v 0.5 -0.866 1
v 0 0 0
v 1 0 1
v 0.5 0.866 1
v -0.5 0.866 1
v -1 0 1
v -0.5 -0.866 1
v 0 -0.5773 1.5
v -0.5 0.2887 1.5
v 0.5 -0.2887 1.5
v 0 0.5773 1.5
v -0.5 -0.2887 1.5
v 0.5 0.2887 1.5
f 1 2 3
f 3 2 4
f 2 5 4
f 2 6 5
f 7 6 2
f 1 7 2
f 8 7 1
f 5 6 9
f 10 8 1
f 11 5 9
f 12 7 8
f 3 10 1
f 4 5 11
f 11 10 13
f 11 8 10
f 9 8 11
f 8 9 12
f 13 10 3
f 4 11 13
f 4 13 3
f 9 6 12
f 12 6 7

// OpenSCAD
/* [Diamond] */

edges = 6;
radious = 1;

// Draw a regular polygon
module regular_polygon(order=4, r=1){
  angles=[ for (i = [0:order-1]) i*(360/order) ];
  coords=[ for (th=angles) [r*cos(th), r*sin(th)] ];
  polygon(coords);
}

// Give the coordinates of a regular polygon
function regular_polygon_coords(order=4, r=1) =
  [ for (th=[ for (i = [0:order-1]) i*(360/order) ]) [r*cos(th), r*sin(th)] ];

/*
  Give the length of the edge of a regular polygon
  Requires at least two parameters
  TO DO
*/
function polygon_edge(edges=undef, radious=undef, apothem=undef, /*edge=undef,*/ perimeter=undef, area=undef) = [
  if (edges!=undef)
    if (radious!=undef) undef
    else if (apothem!=undef) 2*apothem*TAN(PI/edges)
    else if (perimeter!=undef) undef
    else if (area!=undef) undef
  else if(radious!=undef)
    if (apothem!=undef) undef
    else if (perimeter!=undef) undef
    else if (area!=undef) undef
  else if(apothem!=undef)
    if (perimeter!=undef) undef
    else if (area!=undef) undef
  else if(perimeter!=undef)
    if (area!=undef) undef
];

/* Trigonometry with radians */
function RAD_TO_DEG(radians=undef) = radians * (180/PI);
function SIN(n=undef) = sin(RAD_TO_DEG(n));
function COS(n=undef) = cos(RAD_TO_DEG(n));
function TAN(n=undef) = tan(RAD_TO_DEG(n));
function ACOS(n=undef) = acos(RAD_TO_DEG(n));
function ASIN(n=undef) = asin(RAD_TO_DEG(n));
function ATAN(n=undef) = atan(RAD_TO_DEG(n));
function ATAN2(n=undef) = atan2(RAD_TO_DEG(n));


color("#ffff99")
translate([0,0,radious])
union() {
  // Bottom
  rotate([0,180,0])
  linear_extrude(height=radious,scale=0)
  regular_polygon(order=edges,r=radious);

  // Top
  hull() {
    // Big hexagon
    polyhedron(points=regular_polygon_coords(order=edges,r=radious),faces=[[0,1,2,3,4,5]]);
    
    // Little hexagon
    apothem = 2 * radious * SIN(PI/edges);
    edge = 2 * apothem * TAN(PI/edges);
    little_radious = (edge / (2 * SIN(PI/edges))) / 2;
    translate([0,0,radious/2])
    rotate([0,0,360/12])
    polyhedron(points=regular_polygon_coords(order=edges,r=little_radious),faces=[[0,1,2,3,4,5]]);
  }
}
